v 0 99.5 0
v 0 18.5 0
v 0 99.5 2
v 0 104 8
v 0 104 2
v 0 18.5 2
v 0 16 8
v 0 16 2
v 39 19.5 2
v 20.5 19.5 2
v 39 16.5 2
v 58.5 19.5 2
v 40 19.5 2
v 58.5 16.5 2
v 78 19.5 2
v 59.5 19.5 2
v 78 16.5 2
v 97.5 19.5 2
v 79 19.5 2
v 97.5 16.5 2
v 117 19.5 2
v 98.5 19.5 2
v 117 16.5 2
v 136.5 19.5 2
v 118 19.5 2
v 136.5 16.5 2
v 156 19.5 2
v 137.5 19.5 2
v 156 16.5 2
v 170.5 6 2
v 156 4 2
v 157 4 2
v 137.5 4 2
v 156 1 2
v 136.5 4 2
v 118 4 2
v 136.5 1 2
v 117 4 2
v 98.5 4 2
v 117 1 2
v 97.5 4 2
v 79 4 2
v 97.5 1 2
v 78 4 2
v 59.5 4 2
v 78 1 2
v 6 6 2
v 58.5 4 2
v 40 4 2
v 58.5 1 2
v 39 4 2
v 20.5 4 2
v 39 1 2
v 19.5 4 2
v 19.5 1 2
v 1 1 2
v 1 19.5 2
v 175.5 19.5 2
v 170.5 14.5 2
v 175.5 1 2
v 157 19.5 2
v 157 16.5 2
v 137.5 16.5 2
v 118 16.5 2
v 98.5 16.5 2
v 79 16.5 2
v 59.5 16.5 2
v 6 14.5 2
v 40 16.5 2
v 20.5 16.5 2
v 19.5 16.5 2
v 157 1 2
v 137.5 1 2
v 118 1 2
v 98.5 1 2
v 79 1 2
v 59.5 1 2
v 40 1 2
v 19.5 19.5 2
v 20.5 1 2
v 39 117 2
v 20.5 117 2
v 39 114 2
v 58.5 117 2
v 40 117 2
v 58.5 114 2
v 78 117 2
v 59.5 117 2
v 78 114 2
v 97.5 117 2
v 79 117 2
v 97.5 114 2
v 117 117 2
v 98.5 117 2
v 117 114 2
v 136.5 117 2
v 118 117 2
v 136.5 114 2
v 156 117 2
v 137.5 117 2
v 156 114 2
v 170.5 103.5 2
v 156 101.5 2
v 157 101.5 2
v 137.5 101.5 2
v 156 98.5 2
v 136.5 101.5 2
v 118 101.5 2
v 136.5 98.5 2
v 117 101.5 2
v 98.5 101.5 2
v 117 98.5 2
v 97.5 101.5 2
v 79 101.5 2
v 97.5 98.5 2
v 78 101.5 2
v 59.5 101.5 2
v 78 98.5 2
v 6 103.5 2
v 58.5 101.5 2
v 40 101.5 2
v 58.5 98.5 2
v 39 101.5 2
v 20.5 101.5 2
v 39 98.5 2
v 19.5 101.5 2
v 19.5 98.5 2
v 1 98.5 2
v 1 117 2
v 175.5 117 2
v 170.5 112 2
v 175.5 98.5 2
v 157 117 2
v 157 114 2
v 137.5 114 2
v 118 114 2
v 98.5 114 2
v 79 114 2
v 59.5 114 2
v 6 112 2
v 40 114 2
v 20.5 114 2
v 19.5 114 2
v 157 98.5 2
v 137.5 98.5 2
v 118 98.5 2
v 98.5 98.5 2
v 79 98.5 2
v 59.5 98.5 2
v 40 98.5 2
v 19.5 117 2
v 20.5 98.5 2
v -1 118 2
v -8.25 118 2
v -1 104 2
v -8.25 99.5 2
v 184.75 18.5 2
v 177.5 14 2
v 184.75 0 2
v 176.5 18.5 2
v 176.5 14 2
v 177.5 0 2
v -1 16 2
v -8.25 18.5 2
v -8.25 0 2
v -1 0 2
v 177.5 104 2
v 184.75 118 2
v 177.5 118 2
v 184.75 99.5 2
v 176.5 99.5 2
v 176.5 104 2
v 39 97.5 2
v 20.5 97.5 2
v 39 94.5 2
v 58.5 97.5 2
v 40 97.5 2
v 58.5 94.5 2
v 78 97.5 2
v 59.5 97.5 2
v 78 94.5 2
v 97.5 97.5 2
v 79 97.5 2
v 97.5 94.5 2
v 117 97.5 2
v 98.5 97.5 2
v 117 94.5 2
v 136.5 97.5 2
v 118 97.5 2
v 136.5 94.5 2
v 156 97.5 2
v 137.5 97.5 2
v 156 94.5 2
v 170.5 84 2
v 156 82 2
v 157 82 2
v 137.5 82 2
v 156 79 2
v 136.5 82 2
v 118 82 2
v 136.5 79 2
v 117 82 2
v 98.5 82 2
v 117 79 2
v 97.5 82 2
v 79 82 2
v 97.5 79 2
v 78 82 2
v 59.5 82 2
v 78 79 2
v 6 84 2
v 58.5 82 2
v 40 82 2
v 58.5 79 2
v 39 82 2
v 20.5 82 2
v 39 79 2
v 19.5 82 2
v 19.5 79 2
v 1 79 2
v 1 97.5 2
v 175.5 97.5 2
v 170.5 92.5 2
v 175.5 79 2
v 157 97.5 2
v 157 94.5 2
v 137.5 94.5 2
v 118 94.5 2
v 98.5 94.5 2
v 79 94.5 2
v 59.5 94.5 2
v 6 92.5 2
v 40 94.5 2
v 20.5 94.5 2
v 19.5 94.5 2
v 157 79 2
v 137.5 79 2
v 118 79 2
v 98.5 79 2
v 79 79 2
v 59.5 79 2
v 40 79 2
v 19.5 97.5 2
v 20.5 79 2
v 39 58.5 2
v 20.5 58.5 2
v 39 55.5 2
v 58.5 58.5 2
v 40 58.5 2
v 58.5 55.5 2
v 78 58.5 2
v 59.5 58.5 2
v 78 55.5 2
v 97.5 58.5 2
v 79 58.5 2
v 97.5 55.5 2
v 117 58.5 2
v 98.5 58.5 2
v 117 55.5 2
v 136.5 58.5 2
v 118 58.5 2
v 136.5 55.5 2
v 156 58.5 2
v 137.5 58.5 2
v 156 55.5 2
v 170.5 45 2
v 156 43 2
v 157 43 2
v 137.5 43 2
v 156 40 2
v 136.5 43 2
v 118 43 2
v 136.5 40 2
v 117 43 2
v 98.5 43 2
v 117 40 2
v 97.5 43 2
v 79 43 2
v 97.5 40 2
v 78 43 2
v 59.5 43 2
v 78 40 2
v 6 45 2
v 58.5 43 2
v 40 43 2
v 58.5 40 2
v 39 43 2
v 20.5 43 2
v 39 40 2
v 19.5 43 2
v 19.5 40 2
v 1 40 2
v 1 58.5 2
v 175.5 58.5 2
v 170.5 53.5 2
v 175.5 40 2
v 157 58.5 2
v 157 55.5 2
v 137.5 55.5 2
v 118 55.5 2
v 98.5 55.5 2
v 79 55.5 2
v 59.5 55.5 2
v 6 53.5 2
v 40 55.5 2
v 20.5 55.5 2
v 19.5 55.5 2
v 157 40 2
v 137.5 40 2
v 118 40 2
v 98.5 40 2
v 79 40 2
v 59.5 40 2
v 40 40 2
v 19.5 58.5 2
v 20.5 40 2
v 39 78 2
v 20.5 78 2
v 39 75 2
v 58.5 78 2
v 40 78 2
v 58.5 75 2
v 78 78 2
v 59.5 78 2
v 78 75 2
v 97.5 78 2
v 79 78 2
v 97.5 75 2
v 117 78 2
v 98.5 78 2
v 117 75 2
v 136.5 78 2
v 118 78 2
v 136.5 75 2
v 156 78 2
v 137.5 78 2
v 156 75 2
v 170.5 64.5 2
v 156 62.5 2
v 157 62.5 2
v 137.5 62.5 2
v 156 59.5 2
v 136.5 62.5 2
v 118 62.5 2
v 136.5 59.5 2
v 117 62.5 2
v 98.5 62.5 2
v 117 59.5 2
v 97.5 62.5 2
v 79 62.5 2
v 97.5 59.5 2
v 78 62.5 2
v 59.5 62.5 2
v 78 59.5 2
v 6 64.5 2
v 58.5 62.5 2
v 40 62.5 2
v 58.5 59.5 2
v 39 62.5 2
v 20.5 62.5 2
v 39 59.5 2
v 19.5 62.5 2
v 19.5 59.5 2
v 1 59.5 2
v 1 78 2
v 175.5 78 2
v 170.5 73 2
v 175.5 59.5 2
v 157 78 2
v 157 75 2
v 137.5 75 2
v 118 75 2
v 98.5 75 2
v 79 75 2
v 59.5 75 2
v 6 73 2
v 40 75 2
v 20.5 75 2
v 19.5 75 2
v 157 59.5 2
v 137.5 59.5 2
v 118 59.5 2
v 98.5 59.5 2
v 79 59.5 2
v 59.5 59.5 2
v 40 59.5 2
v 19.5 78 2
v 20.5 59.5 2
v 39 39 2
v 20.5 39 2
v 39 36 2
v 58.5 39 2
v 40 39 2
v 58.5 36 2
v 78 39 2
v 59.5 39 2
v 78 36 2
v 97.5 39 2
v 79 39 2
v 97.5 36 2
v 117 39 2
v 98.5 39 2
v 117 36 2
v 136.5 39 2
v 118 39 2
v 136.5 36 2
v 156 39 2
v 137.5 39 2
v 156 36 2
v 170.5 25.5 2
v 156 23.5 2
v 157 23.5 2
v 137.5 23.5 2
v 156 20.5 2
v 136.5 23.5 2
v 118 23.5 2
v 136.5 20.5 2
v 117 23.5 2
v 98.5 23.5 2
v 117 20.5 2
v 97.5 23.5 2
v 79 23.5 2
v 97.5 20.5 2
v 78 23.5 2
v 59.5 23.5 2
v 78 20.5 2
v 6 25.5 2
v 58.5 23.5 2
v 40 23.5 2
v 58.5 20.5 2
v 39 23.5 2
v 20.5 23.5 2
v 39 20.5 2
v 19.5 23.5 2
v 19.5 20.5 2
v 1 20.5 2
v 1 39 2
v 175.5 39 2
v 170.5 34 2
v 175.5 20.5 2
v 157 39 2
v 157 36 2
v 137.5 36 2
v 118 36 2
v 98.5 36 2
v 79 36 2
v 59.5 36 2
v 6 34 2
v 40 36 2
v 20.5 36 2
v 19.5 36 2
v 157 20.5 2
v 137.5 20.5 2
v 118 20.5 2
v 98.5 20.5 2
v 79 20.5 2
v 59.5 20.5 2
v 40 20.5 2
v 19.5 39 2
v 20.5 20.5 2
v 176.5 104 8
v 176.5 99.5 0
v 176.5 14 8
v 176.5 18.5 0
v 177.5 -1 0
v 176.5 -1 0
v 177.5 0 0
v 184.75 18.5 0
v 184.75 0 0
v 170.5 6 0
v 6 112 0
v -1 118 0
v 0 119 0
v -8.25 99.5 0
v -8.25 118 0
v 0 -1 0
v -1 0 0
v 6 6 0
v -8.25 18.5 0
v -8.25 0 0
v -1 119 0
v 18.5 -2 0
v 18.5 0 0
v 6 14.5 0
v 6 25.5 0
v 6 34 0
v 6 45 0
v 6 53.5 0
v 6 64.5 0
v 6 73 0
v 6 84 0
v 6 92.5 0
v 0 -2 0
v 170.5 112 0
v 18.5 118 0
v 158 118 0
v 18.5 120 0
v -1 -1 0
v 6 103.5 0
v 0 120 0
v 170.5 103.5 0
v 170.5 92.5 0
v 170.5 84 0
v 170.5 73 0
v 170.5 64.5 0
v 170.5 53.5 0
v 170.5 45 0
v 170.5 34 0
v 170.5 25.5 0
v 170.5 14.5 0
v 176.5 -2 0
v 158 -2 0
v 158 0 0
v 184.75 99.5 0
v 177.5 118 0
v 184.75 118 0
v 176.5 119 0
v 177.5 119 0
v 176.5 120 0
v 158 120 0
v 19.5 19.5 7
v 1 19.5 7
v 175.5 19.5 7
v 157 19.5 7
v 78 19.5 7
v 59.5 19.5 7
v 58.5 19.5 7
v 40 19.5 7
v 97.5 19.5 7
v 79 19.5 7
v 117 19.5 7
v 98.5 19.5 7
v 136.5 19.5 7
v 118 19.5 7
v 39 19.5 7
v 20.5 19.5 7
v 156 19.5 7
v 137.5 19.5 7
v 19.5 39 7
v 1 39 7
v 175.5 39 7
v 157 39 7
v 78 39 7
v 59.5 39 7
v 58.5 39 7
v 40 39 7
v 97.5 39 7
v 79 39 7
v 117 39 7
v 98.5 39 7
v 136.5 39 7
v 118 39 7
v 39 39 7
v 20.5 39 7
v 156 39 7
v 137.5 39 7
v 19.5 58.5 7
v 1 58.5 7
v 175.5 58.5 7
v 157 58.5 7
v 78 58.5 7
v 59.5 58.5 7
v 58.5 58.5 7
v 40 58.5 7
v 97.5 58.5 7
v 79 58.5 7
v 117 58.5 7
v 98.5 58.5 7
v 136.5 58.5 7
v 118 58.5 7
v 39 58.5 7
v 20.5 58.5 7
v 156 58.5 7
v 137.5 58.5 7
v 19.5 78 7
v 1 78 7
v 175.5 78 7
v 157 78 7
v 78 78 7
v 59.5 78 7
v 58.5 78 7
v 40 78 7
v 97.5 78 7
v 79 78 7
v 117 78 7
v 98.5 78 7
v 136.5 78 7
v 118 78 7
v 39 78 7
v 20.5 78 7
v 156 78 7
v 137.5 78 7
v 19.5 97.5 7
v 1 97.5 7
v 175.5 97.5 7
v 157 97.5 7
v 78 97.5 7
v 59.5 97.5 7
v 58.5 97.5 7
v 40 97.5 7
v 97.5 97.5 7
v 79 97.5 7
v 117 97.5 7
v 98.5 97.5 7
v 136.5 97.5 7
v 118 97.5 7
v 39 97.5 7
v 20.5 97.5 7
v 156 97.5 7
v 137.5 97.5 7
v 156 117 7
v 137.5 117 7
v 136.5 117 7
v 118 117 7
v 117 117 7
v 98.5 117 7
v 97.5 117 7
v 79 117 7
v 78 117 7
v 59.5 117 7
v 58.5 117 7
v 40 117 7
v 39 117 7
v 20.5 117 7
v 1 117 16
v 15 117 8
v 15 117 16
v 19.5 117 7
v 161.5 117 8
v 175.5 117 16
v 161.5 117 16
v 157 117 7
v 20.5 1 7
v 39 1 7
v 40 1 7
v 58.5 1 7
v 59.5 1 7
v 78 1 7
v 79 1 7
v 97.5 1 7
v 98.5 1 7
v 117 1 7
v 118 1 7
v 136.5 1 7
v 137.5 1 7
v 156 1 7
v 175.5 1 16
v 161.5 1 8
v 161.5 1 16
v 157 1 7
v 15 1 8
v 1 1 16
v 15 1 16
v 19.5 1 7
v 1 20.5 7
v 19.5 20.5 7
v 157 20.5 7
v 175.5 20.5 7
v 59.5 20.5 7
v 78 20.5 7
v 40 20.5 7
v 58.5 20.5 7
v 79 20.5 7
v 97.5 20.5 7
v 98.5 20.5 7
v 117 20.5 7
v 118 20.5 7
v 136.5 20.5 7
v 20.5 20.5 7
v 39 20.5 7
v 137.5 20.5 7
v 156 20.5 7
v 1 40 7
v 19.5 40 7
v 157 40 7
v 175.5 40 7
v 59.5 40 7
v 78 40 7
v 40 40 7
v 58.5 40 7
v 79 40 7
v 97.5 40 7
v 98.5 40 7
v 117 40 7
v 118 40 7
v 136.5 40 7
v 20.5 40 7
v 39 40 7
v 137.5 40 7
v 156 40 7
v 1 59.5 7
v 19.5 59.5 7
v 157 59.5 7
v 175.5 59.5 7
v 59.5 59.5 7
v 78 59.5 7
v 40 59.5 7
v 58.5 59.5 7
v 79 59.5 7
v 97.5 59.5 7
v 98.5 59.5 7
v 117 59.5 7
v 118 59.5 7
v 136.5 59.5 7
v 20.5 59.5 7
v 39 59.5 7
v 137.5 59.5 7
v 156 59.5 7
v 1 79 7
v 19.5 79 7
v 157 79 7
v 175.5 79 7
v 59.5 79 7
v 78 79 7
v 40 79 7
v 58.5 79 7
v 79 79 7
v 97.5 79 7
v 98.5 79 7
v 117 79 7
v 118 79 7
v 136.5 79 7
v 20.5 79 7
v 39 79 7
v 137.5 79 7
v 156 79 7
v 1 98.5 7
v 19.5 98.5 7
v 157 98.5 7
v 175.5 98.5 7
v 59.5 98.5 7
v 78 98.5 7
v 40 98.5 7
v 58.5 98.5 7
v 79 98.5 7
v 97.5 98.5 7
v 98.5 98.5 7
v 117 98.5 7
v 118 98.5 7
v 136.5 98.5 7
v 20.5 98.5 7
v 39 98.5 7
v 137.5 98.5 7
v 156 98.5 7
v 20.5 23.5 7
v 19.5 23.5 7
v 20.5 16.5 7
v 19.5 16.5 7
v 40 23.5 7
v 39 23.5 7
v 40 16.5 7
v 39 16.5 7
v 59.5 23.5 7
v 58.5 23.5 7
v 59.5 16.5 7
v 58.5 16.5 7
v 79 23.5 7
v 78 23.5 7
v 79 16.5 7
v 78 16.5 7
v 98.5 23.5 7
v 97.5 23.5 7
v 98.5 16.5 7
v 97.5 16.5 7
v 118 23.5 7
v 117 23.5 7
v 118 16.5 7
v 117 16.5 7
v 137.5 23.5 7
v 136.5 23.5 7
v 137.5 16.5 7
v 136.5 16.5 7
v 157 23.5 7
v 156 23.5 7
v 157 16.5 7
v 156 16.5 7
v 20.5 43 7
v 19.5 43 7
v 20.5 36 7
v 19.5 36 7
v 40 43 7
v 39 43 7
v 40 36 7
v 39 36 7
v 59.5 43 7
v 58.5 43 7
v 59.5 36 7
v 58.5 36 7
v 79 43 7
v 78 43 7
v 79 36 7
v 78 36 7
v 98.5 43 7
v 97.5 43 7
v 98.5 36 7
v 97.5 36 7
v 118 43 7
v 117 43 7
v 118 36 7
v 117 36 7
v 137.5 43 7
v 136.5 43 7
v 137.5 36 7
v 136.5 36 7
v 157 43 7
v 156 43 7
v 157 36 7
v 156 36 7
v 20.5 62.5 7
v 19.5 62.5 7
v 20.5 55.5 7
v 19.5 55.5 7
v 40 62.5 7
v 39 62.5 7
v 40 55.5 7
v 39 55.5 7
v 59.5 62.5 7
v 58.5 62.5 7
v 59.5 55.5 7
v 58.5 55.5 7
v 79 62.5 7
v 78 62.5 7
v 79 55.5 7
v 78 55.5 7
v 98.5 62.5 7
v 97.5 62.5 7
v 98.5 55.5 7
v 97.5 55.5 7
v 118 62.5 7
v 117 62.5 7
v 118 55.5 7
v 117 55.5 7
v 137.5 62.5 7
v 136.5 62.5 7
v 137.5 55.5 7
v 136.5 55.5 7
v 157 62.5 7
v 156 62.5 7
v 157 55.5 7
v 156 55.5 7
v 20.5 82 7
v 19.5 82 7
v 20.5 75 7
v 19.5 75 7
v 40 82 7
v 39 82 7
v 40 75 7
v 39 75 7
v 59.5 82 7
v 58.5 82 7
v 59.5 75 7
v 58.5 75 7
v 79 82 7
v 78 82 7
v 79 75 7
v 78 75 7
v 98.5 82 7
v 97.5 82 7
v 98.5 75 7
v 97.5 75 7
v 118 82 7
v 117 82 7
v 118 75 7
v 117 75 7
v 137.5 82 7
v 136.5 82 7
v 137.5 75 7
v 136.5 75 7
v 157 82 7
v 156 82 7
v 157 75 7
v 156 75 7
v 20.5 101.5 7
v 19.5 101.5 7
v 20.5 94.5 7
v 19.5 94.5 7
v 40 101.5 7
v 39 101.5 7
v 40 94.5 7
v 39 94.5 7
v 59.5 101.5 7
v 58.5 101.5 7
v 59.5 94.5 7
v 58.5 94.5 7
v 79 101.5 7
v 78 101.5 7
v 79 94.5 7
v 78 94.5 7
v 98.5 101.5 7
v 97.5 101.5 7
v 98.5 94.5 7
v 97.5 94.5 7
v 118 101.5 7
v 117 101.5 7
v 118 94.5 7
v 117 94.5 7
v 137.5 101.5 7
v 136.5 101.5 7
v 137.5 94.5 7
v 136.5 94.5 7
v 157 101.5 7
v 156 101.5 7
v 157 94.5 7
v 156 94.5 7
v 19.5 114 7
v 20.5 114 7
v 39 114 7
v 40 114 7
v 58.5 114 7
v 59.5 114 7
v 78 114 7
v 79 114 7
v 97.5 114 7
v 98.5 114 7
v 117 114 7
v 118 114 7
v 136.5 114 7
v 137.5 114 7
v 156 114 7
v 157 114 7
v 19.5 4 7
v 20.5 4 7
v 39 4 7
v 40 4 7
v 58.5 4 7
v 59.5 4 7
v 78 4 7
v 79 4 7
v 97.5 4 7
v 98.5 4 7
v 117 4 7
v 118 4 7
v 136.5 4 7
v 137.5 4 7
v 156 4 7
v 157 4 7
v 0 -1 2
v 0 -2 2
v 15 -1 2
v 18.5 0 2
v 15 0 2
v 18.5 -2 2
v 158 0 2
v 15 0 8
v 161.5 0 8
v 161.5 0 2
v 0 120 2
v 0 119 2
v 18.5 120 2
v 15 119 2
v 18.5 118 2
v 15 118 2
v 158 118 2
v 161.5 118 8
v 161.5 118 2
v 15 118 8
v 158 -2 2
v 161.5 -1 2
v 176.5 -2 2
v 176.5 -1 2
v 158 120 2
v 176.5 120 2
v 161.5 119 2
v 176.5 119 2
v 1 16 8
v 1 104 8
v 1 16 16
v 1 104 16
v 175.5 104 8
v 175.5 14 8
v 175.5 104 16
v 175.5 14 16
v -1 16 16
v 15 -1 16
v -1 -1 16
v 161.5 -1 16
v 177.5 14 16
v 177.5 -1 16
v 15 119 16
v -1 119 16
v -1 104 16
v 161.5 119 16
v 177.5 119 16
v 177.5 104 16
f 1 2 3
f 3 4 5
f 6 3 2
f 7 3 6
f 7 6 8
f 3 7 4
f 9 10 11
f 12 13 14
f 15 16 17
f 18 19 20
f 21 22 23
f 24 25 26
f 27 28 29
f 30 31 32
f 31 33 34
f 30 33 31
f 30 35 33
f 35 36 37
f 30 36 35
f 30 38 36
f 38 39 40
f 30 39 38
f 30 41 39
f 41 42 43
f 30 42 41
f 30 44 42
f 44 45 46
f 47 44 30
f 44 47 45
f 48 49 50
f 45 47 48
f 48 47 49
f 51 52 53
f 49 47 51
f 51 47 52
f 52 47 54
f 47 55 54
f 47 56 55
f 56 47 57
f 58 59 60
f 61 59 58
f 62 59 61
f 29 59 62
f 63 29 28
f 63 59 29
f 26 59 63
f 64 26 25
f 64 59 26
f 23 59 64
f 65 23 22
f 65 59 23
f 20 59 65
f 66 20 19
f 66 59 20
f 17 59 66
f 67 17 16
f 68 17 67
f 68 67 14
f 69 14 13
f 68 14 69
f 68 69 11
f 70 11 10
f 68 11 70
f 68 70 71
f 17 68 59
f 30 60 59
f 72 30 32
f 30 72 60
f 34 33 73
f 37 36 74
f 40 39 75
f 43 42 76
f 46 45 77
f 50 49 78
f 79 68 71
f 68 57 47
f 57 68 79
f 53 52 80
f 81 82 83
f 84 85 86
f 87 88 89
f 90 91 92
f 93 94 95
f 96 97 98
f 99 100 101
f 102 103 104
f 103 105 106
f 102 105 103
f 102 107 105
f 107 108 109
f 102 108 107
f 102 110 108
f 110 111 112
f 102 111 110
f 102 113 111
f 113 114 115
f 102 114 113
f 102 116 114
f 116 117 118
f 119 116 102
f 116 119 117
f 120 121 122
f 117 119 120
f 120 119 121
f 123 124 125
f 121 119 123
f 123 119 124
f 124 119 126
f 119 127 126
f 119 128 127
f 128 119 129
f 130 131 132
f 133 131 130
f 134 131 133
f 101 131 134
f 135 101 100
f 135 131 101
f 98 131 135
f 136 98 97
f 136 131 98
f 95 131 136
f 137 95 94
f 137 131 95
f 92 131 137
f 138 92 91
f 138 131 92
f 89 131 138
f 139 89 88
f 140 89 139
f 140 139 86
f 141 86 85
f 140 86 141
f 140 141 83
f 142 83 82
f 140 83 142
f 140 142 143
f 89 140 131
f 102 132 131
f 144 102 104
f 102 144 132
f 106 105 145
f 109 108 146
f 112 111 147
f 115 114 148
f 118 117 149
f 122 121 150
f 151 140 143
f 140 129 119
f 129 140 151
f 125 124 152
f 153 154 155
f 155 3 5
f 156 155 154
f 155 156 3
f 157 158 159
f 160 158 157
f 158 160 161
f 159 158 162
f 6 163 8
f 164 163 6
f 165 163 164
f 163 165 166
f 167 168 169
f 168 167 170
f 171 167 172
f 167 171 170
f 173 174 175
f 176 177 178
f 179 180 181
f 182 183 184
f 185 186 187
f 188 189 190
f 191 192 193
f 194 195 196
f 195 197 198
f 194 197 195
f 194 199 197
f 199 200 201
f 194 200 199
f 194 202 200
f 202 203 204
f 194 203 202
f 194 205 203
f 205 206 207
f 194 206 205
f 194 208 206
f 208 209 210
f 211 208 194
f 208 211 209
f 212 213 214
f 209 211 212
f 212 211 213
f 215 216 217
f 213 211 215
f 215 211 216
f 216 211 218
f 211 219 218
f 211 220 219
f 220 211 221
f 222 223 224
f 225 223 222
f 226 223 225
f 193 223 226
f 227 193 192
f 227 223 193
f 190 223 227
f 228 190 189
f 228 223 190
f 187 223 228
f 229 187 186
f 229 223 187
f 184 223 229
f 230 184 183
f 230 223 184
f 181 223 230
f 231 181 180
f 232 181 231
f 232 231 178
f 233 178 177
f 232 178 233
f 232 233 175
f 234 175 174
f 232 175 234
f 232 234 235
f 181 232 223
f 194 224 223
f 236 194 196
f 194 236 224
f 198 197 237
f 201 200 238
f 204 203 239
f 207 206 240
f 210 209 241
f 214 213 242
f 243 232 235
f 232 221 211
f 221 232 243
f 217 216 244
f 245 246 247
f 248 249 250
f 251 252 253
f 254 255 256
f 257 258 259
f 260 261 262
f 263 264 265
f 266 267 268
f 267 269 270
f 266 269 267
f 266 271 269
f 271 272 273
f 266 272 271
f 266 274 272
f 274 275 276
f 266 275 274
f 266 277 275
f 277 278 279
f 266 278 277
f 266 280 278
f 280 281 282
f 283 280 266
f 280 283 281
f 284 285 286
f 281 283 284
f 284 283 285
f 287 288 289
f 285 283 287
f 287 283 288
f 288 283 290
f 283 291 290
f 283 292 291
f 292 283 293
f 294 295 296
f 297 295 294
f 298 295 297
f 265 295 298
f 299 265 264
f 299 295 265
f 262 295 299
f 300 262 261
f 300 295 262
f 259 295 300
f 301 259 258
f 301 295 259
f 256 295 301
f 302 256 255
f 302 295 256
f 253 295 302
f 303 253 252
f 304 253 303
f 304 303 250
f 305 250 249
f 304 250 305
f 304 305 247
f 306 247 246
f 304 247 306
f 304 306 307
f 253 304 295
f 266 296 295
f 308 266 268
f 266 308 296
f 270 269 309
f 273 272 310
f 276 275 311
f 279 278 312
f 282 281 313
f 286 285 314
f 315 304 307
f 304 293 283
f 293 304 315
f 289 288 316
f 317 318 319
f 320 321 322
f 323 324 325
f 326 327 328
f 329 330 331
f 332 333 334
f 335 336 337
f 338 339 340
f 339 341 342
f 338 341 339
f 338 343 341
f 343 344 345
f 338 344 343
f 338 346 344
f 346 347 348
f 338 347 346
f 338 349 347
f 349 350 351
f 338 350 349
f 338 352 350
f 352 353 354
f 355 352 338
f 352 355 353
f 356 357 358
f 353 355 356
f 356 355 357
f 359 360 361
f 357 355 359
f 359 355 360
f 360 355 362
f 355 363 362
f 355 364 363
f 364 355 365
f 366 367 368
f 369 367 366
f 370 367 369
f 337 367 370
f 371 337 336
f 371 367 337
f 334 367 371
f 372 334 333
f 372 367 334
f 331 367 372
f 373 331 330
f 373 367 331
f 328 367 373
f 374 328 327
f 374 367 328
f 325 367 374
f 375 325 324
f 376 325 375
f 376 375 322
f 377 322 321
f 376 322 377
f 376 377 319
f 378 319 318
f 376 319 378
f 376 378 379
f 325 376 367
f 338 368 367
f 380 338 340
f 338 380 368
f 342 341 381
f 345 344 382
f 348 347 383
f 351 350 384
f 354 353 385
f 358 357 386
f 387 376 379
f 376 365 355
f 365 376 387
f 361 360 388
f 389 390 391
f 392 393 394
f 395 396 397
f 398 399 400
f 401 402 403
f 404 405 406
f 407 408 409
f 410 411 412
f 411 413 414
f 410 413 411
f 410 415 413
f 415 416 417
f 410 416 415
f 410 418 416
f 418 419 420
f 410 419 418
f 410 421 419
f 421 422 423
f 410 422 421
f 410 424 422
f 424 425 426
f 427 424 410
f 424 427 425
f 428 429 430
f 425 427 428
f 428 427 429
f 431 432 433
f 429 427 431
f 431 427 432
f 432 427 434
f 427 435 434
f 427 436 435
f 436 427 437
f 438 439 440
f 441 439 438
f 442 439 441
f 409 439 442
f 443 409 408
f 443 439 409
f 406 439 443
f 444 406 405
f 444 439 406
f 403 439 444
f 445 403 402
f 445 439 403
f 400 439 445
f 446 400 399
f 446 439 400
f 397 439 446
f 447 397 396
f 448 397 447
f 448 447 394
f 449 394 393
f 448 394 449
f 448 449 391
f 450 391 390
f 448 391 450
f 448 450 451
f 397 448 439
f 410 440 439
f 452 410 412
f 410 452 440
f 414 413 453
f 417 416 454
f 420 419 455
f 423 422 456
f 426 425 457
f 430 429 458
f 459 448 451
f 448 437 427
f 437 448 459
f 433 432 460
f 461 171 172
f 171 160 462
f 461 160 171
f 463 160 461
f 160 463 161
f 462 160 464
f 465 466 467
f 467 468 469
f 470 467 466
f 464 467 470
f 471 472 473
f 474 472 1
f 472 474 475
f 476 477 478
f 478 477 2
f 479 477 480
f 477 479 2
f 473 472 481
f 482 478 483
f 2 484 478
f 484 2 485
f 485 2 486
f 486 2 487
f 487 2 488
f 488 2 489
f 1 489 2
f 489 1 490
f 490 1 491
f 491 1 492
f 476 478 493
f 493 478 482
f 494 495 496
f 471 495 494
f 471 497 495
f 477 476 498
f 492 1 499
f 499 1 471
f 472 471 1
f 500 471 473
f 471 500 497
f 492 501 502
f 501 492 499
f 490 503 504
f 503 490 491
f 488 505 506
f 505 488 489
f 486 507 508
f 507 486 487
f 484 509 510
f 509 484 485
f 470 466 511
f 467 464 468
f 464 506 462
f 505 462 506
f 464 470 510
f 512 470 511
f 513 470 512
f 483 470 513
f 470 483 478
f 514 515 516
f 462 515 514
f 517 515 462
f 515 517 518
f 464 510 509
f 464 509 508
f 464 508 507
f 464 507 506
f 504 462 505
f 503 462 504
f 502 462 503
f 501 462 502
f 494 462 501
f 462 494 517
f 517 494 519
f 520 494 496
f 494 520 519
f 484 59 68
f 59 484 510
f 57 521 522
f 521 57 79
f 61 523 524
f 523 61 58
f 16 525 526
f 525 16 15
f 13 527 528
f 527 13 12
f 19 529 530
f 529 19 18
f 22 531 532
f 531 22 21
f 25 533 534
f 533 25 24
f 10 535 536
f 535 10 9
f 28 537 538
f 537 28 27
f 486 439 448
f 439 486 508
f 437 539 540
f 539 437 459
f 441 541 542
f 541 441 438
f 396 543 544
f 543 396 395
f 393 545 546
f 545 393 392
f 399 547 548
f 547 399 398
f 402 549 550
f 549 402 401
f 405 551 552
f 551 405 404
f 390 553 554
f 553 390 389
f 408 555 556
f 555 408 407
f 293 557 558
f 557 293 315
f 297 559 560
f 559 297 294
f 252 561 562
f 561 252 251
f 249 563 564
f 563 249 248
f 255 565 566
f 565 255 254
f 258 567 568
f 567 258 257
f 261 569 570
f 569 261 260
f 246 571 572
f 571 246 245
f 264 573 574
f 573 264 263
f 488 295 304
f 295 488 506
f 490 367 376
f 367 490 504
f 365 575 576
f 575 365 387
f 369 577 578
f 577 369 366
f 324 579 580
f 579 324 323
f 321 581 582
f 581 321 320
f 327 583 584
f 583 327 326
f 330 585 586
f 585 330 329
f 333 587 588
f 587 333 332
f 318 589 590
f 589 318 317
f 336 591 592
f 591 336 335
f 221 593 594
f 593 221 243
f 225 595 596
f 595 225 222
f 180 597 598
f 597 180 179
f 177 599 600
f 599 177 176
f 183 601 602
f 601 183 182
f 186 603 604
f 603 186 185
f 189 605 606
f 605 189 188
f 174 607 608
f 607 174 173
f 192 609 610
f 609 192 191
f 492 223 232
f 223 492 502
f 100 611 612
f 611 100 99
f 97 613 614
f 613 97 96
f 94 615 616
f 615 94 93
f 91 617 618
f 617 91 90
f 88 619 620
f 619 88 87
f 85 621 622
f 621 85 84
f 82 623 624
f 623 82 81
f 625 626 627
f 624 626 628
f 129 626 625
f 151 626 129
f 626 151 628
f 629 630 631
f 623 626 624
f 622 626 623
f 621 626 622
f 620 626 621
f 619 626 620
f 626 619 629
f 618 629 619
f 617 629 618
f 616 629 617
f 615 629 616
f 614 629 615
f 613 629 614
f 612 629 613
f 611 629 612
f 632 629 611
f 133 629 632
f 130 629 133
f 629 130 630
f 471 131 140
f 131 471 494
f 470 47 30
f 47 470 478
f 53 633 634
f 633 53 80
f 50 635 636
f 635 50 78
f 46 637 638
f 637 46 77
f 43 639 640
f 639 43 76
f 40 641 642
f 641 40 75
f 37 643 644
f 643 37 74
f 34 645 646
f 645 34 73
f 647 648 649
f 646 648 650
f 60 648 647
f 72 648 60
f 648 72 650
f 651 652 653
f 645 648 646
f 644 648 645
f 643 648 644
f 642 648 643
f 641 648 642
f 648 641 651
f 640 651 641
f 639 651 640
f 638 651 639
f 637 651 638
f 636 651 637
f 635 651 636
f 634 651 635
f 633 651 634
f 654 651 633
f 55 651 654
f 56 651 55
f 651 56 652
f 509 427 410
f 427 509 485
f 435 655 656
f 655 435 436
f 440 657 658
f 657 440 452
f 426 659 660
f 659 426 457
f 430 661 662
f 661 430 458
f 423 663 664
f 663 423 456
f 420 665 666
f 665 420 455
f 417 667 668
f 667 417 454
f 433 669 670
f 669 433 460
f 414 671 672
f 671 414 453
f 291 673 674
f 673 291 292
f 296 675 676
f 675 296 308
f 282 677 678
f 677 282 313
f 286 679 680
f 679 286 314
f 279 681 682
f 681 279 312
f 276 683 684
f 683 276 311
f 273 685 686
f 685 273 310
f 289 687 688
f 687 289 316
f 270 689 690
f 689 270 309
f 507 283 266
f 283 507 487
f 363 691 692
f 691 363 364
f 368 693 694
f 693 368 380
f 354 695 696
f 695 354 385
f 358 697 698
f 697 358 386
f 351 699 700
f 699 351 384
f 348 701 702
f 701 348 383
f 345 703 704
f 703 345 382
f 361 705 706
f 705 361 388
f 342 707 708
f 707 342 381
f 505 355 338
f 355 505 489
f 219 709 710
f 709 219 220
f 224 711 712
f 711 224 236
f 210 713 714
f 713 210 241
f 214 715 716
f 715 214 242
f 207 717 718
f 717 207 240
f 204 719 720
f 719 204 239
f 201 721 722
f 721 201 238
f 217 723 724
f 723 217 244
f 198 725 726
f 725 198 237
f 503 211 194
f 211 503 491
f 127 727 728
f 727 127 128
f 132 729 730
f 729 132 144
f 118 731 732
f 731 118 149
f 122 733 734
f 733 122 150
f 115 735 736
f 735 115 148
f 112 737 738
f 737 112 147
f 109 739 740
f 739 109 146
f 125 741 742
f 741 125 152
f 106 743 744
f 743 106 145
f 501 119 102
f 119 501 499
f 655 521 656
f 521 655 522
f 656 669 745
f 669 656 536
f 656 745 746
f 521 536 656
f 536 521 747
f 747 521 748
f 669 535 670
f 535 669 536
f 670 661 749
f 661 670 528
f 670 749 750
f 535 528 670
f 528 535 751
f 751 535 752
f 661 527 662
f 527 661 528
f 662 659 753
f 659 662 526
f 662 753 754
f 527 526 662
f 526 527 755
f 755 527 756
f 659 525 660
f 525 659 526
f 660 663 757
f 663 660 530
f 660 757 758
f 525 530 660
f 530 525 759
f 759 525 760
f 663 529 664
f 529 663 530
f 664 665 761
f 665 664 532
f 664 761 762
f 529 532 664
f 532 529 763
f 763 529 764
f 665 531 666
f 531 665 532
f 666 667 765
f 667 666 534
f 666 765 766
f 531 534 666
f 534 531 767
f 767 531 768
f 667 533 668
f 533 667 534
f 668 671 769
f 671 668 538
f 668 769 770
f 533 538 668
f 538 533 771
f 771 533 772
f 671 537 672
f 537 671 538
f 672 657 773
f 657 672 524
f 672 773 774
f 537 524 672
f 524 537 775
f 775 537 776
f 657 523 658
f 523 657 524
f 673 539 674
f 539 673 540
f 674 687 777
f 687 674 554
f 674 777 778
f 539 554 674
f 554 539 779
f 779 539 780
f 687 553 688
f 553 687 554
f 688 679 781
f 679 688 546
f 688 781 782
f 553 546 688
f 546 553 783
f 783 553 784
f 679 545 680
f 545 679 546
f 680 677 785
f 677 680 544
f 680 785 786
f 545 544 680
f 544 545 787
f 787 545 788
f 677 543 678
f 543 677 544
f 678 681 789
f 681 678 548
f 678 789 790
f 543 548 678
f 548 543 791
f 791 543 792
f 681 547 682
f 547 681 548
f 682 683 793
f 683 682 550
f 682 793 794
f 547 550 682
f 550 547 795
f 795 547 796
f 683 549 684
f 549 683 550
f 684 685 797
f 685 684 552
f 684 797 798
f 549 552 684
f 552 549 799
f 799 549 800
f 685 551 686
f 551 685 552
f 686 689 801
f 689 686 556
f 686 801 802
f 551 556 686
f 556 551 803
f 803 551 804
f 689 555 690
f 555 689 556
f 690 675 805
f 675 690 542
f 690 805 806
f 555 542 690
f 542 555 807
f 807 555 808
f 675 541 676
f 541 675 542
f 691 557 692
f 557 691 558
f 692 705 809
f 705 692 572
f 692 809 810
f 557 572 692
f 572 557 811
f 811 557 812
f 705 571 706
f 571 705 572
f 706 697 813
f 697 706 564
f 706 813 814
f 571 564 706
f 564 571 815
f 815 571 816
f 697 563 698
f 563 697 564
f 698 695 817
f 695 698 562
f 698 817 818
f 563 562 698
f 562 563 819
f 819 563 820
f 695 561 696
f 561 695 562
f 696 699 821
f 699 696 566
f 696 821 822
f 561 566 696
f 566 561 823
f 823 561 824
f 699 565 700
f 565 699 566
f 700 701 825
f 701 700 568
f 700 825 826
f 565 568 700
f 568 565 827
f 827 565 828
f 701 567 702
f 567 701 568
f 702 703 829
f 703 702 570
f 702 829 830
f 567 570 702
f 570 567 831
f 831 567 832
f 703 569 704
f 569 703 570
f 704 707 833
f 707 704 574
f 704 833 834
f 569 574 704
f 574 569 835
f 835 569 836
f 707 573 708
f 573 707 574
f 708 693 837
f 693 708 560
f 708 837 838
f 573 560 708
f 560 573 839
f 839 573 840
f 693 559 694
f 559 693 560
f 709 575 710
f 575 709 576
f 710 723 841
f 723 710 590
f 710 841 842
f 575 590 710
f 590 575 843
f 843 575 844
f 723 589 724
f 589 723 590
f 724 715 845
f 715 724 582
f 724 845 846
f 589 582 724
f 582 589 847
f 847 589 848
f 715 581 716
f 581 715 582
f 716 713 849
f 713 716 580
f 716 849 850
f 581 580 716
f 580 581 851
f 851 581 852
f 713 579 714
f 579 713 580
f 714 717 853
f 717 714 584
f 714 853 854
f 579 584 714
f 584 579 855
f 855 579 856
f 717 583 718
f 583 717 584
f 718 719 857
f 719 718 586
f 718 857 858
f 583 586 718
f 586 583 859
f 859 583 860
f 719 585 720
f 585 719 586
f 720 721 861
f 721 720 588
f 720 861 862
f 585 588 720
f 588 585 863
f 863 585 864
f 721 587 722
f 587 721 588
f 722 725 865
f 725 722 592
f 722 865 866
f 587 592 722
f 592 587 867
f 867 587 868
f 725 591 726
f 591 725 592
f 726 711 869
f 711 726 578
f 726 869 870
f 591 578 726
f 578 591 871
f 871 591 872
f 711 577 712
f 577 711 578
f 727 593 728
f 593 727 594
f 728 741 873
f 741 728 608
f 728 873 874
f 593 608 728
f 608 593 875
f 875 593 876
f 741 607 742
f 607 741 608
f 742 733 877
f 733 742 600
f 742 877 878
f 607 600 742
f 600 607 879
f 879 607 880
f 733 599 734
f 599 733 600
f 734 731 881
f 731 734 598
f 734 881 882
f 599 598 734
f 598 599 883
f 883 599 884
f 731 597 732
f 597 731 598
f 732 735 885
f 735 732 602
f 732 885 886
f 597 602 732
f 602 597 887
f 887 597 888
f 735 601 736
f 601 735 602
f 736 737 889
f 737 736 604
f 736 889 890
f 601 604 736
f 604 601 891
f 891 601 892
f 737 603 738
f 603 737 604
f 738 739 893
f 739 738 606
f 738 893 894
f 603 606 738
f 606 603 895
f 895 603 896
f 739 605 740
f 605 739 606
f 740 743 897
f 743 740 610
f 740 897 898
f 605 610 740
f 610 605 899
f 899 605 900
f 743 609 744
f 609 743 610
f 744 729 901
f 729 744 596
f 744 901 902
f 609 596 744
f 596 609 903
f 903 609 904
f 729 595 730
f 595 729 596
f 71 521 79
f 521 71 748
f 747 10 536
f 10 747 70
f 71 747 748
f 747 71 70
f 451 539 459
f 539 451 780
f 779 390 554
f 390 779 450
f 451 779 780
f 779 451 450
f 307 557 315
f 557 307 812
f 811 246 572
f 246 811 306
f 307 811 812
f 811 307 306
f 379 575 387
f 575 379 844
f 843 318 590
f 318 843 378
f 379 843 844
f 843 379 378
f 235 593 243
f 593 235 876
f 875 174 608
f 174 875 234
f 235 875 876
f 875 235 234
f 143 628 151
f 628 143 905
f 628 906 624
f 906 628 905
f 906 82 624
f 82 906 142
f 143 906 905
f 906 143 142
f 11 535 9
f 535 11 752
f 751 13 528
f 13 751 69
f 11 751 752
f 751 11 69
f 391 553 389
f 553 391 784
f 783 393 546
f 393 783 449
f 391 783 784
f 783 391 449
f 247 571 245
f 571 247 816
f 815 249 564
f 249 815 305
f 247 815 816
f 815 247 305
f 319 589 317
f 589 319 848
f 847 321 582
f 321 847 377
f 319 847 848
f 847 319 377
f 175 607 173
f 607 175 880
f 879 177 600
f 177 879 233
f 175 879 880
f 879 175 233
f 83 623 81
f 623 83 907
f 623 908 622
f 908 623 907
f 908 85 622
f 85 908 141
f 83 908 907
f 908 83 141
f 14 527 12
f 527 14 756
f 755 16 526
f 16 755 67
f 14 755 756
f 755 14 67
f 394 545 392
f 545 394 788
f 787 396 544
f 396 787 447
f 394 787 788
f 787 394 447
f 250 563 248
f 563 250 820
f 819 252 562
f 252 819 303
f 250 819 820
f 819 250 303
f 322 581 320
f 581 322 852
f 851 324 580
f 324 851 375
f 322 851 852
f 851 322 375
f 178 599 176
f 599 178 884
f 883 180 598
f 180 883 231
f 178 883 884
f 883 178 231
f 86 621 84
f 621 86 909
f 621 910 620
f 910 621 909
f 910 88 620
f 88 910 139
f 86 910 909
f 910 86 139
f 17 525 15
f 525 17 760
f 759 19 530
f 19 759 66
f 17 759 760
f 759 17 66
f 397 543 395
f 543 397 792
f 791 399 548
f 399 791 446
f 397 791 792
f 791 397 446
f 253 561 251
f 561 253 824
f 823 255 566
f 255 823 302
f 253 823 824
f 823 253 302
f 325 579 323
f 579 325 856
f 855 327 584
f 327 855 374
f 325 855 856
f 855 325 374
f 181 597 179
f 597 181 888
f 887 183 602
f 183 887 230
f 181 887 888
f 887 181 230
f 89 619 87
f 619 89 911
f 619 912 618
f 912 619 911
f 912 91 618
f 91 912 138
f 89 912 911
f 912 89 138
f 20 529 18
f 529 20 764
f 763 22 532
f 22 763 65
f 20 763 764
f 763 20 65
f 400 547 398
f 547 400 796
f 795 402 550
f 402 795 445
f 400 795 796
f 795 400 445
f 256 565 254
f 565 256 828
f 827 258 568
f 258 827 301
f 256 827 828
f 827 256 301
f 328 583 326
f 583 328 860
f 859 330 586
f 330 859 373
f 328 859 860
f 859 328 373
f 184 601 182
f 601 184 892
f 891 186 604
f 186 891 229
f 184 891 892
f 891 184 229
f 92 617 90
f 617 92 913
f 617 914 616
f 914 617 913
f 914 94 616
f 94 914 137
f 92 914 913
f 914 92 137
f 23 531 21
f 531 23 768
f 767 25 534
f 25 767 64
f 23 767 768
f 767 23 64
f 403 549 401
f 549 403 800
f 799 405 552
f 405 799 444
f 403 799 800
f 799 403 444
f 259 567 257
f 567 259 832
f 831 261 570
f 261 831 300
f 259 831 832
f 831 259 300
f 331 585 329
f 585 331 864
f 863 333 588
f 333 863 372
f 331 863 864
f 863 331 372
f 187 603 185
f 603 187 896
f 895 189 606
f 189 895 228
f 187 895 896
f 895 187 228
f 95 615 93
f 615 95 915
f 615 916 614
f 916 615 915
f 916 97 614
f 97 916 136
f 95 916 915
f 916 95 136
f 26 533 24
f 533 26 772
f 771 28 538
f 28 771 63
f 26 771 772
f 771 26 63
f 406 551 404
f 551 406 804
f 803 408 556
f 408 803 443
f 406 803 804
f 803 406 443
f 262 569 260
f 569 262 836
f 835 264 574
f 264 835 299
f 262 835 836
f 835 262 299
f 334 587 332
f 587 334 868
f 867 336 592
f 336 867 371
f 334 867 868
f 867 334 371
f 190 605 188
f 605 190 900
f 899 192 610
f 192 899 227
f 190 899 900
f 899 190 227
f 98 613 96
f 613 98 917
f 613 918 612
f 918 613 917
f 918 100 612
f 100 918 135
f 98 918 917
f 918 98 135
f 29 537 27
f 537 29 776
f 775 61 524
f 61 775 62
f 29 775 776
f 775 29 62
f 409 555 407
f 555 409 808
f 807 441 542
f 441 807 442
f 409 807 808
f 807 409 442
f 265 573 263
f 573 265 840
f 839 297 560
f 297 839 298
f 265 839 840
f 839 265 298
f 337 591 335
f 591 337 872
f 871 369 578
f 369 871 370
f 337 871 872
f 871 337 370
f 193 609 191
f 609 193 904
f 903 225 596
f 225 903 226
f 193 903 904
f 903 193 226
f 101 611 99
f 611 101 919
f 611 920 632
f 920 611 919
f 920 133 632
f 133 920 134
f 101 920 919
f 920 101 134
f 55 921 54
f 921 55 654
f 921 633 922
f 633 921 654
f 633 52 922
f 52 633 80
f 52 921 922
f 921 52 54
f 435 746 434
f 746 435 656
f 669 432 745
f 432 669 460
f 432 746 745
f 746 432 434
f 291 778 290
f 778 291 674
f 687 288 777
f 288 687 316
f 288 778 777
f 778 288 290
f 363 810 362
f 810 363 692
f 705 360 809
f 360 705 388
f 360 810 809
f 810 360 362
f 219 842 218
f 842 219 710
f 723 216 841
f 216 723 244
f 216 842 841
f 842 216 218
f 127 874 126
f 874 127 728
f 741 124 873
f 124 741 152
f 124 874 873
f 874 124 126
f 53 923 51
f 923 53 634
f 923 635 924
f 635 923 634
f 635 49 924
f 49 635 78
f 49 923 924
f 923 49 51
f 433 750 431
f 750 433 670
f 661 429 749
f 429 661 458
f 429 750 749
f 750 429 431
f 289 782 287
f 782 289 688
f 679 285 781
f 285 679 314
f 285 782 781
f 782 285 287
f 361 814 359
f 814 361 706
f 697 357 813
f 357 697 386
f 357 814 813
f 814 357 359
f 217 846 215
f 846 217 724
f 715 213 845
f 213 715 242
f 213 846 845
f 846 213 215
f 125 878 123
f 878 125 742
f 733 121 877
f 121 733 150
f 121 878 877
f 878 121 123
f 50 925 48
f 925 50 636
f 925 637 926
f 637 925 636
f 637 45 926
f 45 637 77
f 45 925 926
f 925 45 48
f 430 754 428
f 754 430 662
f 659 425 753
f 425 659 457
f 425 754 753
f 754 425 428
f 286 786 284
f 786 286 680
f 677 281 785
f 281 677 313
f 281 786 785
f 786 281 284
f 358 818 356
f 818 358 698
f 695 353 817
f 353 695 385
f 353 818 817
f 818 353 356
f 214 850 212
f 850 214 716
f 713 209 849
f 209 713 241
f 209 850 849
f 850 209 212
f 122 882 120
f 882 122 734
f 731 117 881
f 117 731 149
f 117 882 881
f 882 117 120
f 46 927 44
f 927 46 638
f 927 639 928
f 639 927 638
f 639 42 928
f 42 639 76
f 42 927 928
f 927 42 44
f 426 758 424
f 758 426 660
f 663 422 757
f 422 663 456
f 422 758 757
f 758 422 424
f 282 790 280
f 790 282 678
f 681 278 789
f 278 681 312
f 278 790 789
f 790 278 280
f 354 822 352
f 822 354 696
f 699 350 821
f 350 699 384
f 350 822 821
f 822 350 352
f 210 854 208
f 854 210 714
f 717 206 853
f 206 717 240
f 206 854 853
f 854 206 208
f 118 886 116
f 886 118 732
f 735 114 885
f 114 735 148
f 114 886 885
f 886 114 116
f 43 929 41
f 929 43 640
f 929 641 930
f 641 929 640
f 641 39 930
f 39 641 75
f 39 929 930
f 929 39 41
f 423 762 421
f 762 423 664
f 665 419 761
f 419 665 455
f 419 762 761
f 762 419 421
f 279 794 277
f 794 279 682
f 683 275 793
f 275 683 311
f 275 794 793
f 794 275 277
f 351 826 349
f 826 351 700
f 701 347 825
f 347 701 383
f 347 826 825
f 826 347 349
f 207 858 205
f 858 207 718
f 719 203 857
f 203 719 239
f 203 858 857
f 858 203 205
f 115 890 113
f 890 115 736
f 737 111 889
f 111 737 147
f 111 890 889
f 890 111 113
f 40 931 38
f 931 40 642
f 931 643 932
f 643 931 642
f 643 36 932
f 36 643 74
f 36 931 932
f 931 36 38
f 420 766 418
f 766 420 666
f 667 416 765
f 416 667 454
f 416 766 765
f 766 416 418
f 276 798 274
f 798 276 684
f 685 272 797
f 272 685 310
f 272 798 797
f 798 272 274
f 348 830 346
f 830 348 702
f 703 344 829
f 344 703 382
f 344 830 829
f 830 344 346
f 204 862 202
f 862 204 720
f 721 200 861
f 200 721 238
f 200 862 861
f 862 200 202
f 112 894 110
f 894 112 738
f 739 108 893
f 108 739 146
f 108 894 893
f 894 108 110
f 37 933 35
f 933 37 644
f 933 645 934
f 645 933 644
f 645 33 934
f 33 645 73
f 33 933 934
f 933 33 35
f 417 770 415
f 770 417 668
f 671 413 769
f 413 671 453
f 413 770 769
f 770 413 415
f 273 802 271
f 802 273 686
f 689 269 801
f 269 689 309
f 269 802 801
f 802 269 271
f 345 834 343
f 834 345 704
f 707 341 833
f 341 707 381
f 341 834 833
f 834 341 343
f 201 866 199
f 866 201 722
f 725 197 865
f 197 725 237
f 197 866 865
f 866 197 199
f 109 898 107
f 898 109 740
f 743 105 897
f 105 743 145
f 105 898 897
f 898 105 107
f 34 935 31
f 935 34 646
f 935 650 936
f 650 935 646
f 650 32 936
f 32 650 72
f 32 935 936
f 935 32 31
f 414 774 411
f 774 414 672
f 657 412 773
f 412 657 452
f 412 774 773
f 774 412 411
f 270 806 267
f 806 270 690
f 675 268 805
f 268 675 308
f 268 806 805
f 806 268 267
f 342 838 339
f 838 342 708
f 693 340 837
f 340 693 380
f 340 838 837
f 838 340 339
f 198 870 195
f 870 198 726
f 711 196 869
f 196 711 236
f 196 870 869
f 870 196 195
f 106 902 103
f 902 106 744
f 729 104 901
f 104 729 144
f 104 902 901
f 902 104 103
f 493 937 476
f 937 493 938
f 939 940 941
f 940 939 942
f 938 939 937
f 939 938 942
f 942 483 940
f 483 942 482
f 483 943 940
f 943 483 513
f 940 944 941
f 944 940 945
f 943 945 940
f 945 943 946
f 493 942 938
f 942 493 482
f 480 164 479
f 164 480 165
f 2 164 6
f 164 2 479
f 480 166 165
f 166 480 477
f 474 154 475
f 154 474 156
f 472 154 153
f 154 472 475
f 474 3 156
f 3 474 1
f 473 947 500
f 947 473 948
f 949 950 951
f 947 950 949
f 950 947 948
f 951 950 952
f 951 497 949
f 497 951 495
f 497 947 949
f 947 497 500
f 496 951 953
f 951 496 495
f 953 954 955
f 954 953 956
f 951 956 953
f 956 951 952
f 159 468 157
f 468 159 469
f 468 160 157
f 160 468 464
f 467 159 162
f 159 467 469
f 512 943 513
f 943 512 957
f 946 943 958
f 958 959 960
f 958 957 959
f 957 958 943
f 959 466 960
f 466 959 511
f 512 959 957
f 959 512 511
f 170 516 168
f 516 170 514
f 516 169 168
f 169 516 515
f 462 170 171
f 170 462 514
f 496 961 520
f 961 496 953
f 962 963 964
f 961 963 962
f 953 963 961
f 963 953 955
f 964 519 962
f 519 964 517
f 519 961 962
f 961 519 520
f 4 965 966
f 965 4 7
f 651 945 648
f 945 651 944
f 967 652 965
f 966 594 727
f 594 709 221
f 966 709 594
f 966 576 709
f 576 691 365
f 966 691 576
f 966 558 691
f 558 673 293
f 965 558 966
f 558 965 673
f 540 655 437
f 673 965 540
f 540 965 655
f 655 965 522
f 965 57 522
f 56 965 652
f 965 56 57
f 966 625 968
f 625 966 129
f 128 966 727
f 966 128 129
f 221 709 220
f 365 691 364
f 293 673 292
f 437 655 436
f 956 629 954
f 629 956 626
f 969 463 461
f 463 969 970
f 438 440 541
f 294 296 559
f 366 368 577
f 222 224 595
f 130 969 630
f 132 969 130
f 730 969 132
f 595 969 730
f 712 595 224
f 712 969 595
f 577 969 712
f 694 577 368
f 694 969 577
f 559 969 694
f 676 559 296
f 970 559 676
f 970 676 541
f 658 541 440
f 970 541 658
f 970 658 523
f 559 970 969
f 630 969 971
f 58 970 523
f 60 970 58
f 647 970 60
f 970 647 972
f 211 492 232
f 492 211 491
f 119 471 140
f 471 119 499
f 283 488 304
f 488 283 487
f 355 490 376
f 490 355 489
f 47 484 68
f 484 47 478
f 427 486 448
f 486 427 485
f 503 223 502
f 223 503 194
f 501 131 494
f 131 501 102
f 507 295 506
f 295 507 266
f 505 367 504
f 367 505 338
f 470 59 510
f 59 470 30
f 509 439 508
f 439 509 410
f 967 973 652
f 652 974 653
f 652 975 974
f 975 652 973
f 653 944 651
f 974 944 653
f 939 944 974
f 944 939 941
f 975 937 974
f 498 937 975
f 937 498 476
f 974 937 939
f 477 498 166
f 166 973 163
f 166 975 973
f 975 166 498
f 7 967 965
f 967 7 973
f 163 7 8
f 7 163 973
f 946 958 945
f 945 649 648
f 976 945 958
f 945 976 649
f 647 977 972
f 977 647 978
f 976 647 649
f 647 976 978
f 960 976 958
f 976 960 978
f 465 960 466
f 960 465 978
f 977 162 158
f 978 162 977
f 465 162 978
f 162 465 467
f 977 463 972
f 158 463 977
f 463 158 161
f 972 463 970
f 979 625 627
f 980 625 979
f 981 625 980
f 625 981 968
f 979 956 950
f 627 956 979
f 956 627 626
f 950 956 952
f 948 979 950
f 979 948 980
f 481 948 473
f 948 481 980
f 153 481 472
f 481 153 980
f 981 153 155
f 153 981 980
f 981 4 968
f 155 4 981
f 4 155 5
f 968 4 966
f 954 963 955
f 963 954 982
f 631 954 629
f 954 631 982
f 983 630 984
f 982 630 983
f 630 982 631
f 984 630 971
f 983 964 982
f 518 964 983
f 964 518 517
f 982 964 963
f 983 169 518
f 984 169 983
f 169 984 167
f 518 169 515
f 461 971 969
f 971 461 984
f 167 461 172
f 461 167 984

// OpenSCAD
// 鍵帽儲存托盤產生器
// Keycap Storage Tray Generator
include <KSTG_Base.SCAD>

// 可複製此樣板檔依照自己需求另存新檔
// 以便以檔案區隔樣式

// 存放盒子的大小:
BoxSize_L1 = 193; //長度(水平)
BoxSize_W1 = 122; //寬度(垂直)
BoxSize_H = 55;  //高度

// 外圍厚度
Tray_Fence_T = 1;  //厚度
Tray_Fence_H = 6;  //高度

// 分隔片
Tray_Separator_T = 1;  //厚度
Tray_Separator_H = 5;  //高度 要高於上一層與鍵帽間的間隙
Tray_Separator_L = 3;  //短隔板長度

// 分隔片(長寬區分/尚未使用)
//Tray_Separator_T_L = 1;  //長(水平) 厚度
//Tray_Separator_T_W = 2;  //寬(垂直) 厚度
//Tray_Separator_H_L = 5;  //長(水平) 高度
//Tray_Separator_H_W = 5;  //寬(垂直) 高度

// 底板
Tray_Bottom_L = 5; //底部分隔板至到底板寬度
Tray_Bottom_T = 2; //底板厚度

//常見鍵帽高度表:
//SA  16.5mm  Cherry 9.4mm
//OEM 11.9mm  TAI HAO 14.8
//XDA 9.1mm   DSA 7.6
//ADA 8mm (18.2x18.2mm )
//適用於 Tray_Column_H 參數

//四角落立柱高度
//堆疊托盤時可墊高避免直接碰觸鍵帽
Tray_Column_H = 14; // 高度 可依照鍵帽高度調整
Tray_Column_T = 2;  // 厚度
Tray_Column_L = 15; // 長面長度
Tray_Column_W = 15; // 寬面長度 

//放置鍵帽空間
Keycaps_Space_L = 18.5;
Keycaps_Space_W = 18.5;

//垂直分隔片樣式
// 0 不需要
// 1 全部
// 2 短隔板無底板
// 3 短隔板有底板

Tray_VS_Type = 2;

//多餘空間處理方式
//How to use the extra space
// 0 不處理，照原本盒子大小產生外圍
// 1 不處理，僅列印鍵帽所需空間
// 2 角落填補剩餘空間
ExtraSpaceUse = 2;

//是否顯示文字標記 0關/1開
ShowText = 1 ;

//清除分隔片與底板
//請參考F5後帶出的座標數值
//例如：
// Tray_Separator_Cut_L=[
// [1,1],[2,1],[3,1],[1,2]
// ];

// 長(水平)分隔片 紅色
Tray_Separator_Cut_L=[
];
// 寬(垂直)分隔片 藍色 -vnm,     
Tray_Separator_Cut_W=[
];
// 交錯點 綠色 長寬分隔片交會處
// 須手動清除交錯點
Tray_Separator_Cut_C=[
];
// 長(水平)底板 紅色
Tray_Separator_Cut_LB=[
];
// 寬(垂直)底板 藍色
Tray_Separator_Cut_WB=[
];
